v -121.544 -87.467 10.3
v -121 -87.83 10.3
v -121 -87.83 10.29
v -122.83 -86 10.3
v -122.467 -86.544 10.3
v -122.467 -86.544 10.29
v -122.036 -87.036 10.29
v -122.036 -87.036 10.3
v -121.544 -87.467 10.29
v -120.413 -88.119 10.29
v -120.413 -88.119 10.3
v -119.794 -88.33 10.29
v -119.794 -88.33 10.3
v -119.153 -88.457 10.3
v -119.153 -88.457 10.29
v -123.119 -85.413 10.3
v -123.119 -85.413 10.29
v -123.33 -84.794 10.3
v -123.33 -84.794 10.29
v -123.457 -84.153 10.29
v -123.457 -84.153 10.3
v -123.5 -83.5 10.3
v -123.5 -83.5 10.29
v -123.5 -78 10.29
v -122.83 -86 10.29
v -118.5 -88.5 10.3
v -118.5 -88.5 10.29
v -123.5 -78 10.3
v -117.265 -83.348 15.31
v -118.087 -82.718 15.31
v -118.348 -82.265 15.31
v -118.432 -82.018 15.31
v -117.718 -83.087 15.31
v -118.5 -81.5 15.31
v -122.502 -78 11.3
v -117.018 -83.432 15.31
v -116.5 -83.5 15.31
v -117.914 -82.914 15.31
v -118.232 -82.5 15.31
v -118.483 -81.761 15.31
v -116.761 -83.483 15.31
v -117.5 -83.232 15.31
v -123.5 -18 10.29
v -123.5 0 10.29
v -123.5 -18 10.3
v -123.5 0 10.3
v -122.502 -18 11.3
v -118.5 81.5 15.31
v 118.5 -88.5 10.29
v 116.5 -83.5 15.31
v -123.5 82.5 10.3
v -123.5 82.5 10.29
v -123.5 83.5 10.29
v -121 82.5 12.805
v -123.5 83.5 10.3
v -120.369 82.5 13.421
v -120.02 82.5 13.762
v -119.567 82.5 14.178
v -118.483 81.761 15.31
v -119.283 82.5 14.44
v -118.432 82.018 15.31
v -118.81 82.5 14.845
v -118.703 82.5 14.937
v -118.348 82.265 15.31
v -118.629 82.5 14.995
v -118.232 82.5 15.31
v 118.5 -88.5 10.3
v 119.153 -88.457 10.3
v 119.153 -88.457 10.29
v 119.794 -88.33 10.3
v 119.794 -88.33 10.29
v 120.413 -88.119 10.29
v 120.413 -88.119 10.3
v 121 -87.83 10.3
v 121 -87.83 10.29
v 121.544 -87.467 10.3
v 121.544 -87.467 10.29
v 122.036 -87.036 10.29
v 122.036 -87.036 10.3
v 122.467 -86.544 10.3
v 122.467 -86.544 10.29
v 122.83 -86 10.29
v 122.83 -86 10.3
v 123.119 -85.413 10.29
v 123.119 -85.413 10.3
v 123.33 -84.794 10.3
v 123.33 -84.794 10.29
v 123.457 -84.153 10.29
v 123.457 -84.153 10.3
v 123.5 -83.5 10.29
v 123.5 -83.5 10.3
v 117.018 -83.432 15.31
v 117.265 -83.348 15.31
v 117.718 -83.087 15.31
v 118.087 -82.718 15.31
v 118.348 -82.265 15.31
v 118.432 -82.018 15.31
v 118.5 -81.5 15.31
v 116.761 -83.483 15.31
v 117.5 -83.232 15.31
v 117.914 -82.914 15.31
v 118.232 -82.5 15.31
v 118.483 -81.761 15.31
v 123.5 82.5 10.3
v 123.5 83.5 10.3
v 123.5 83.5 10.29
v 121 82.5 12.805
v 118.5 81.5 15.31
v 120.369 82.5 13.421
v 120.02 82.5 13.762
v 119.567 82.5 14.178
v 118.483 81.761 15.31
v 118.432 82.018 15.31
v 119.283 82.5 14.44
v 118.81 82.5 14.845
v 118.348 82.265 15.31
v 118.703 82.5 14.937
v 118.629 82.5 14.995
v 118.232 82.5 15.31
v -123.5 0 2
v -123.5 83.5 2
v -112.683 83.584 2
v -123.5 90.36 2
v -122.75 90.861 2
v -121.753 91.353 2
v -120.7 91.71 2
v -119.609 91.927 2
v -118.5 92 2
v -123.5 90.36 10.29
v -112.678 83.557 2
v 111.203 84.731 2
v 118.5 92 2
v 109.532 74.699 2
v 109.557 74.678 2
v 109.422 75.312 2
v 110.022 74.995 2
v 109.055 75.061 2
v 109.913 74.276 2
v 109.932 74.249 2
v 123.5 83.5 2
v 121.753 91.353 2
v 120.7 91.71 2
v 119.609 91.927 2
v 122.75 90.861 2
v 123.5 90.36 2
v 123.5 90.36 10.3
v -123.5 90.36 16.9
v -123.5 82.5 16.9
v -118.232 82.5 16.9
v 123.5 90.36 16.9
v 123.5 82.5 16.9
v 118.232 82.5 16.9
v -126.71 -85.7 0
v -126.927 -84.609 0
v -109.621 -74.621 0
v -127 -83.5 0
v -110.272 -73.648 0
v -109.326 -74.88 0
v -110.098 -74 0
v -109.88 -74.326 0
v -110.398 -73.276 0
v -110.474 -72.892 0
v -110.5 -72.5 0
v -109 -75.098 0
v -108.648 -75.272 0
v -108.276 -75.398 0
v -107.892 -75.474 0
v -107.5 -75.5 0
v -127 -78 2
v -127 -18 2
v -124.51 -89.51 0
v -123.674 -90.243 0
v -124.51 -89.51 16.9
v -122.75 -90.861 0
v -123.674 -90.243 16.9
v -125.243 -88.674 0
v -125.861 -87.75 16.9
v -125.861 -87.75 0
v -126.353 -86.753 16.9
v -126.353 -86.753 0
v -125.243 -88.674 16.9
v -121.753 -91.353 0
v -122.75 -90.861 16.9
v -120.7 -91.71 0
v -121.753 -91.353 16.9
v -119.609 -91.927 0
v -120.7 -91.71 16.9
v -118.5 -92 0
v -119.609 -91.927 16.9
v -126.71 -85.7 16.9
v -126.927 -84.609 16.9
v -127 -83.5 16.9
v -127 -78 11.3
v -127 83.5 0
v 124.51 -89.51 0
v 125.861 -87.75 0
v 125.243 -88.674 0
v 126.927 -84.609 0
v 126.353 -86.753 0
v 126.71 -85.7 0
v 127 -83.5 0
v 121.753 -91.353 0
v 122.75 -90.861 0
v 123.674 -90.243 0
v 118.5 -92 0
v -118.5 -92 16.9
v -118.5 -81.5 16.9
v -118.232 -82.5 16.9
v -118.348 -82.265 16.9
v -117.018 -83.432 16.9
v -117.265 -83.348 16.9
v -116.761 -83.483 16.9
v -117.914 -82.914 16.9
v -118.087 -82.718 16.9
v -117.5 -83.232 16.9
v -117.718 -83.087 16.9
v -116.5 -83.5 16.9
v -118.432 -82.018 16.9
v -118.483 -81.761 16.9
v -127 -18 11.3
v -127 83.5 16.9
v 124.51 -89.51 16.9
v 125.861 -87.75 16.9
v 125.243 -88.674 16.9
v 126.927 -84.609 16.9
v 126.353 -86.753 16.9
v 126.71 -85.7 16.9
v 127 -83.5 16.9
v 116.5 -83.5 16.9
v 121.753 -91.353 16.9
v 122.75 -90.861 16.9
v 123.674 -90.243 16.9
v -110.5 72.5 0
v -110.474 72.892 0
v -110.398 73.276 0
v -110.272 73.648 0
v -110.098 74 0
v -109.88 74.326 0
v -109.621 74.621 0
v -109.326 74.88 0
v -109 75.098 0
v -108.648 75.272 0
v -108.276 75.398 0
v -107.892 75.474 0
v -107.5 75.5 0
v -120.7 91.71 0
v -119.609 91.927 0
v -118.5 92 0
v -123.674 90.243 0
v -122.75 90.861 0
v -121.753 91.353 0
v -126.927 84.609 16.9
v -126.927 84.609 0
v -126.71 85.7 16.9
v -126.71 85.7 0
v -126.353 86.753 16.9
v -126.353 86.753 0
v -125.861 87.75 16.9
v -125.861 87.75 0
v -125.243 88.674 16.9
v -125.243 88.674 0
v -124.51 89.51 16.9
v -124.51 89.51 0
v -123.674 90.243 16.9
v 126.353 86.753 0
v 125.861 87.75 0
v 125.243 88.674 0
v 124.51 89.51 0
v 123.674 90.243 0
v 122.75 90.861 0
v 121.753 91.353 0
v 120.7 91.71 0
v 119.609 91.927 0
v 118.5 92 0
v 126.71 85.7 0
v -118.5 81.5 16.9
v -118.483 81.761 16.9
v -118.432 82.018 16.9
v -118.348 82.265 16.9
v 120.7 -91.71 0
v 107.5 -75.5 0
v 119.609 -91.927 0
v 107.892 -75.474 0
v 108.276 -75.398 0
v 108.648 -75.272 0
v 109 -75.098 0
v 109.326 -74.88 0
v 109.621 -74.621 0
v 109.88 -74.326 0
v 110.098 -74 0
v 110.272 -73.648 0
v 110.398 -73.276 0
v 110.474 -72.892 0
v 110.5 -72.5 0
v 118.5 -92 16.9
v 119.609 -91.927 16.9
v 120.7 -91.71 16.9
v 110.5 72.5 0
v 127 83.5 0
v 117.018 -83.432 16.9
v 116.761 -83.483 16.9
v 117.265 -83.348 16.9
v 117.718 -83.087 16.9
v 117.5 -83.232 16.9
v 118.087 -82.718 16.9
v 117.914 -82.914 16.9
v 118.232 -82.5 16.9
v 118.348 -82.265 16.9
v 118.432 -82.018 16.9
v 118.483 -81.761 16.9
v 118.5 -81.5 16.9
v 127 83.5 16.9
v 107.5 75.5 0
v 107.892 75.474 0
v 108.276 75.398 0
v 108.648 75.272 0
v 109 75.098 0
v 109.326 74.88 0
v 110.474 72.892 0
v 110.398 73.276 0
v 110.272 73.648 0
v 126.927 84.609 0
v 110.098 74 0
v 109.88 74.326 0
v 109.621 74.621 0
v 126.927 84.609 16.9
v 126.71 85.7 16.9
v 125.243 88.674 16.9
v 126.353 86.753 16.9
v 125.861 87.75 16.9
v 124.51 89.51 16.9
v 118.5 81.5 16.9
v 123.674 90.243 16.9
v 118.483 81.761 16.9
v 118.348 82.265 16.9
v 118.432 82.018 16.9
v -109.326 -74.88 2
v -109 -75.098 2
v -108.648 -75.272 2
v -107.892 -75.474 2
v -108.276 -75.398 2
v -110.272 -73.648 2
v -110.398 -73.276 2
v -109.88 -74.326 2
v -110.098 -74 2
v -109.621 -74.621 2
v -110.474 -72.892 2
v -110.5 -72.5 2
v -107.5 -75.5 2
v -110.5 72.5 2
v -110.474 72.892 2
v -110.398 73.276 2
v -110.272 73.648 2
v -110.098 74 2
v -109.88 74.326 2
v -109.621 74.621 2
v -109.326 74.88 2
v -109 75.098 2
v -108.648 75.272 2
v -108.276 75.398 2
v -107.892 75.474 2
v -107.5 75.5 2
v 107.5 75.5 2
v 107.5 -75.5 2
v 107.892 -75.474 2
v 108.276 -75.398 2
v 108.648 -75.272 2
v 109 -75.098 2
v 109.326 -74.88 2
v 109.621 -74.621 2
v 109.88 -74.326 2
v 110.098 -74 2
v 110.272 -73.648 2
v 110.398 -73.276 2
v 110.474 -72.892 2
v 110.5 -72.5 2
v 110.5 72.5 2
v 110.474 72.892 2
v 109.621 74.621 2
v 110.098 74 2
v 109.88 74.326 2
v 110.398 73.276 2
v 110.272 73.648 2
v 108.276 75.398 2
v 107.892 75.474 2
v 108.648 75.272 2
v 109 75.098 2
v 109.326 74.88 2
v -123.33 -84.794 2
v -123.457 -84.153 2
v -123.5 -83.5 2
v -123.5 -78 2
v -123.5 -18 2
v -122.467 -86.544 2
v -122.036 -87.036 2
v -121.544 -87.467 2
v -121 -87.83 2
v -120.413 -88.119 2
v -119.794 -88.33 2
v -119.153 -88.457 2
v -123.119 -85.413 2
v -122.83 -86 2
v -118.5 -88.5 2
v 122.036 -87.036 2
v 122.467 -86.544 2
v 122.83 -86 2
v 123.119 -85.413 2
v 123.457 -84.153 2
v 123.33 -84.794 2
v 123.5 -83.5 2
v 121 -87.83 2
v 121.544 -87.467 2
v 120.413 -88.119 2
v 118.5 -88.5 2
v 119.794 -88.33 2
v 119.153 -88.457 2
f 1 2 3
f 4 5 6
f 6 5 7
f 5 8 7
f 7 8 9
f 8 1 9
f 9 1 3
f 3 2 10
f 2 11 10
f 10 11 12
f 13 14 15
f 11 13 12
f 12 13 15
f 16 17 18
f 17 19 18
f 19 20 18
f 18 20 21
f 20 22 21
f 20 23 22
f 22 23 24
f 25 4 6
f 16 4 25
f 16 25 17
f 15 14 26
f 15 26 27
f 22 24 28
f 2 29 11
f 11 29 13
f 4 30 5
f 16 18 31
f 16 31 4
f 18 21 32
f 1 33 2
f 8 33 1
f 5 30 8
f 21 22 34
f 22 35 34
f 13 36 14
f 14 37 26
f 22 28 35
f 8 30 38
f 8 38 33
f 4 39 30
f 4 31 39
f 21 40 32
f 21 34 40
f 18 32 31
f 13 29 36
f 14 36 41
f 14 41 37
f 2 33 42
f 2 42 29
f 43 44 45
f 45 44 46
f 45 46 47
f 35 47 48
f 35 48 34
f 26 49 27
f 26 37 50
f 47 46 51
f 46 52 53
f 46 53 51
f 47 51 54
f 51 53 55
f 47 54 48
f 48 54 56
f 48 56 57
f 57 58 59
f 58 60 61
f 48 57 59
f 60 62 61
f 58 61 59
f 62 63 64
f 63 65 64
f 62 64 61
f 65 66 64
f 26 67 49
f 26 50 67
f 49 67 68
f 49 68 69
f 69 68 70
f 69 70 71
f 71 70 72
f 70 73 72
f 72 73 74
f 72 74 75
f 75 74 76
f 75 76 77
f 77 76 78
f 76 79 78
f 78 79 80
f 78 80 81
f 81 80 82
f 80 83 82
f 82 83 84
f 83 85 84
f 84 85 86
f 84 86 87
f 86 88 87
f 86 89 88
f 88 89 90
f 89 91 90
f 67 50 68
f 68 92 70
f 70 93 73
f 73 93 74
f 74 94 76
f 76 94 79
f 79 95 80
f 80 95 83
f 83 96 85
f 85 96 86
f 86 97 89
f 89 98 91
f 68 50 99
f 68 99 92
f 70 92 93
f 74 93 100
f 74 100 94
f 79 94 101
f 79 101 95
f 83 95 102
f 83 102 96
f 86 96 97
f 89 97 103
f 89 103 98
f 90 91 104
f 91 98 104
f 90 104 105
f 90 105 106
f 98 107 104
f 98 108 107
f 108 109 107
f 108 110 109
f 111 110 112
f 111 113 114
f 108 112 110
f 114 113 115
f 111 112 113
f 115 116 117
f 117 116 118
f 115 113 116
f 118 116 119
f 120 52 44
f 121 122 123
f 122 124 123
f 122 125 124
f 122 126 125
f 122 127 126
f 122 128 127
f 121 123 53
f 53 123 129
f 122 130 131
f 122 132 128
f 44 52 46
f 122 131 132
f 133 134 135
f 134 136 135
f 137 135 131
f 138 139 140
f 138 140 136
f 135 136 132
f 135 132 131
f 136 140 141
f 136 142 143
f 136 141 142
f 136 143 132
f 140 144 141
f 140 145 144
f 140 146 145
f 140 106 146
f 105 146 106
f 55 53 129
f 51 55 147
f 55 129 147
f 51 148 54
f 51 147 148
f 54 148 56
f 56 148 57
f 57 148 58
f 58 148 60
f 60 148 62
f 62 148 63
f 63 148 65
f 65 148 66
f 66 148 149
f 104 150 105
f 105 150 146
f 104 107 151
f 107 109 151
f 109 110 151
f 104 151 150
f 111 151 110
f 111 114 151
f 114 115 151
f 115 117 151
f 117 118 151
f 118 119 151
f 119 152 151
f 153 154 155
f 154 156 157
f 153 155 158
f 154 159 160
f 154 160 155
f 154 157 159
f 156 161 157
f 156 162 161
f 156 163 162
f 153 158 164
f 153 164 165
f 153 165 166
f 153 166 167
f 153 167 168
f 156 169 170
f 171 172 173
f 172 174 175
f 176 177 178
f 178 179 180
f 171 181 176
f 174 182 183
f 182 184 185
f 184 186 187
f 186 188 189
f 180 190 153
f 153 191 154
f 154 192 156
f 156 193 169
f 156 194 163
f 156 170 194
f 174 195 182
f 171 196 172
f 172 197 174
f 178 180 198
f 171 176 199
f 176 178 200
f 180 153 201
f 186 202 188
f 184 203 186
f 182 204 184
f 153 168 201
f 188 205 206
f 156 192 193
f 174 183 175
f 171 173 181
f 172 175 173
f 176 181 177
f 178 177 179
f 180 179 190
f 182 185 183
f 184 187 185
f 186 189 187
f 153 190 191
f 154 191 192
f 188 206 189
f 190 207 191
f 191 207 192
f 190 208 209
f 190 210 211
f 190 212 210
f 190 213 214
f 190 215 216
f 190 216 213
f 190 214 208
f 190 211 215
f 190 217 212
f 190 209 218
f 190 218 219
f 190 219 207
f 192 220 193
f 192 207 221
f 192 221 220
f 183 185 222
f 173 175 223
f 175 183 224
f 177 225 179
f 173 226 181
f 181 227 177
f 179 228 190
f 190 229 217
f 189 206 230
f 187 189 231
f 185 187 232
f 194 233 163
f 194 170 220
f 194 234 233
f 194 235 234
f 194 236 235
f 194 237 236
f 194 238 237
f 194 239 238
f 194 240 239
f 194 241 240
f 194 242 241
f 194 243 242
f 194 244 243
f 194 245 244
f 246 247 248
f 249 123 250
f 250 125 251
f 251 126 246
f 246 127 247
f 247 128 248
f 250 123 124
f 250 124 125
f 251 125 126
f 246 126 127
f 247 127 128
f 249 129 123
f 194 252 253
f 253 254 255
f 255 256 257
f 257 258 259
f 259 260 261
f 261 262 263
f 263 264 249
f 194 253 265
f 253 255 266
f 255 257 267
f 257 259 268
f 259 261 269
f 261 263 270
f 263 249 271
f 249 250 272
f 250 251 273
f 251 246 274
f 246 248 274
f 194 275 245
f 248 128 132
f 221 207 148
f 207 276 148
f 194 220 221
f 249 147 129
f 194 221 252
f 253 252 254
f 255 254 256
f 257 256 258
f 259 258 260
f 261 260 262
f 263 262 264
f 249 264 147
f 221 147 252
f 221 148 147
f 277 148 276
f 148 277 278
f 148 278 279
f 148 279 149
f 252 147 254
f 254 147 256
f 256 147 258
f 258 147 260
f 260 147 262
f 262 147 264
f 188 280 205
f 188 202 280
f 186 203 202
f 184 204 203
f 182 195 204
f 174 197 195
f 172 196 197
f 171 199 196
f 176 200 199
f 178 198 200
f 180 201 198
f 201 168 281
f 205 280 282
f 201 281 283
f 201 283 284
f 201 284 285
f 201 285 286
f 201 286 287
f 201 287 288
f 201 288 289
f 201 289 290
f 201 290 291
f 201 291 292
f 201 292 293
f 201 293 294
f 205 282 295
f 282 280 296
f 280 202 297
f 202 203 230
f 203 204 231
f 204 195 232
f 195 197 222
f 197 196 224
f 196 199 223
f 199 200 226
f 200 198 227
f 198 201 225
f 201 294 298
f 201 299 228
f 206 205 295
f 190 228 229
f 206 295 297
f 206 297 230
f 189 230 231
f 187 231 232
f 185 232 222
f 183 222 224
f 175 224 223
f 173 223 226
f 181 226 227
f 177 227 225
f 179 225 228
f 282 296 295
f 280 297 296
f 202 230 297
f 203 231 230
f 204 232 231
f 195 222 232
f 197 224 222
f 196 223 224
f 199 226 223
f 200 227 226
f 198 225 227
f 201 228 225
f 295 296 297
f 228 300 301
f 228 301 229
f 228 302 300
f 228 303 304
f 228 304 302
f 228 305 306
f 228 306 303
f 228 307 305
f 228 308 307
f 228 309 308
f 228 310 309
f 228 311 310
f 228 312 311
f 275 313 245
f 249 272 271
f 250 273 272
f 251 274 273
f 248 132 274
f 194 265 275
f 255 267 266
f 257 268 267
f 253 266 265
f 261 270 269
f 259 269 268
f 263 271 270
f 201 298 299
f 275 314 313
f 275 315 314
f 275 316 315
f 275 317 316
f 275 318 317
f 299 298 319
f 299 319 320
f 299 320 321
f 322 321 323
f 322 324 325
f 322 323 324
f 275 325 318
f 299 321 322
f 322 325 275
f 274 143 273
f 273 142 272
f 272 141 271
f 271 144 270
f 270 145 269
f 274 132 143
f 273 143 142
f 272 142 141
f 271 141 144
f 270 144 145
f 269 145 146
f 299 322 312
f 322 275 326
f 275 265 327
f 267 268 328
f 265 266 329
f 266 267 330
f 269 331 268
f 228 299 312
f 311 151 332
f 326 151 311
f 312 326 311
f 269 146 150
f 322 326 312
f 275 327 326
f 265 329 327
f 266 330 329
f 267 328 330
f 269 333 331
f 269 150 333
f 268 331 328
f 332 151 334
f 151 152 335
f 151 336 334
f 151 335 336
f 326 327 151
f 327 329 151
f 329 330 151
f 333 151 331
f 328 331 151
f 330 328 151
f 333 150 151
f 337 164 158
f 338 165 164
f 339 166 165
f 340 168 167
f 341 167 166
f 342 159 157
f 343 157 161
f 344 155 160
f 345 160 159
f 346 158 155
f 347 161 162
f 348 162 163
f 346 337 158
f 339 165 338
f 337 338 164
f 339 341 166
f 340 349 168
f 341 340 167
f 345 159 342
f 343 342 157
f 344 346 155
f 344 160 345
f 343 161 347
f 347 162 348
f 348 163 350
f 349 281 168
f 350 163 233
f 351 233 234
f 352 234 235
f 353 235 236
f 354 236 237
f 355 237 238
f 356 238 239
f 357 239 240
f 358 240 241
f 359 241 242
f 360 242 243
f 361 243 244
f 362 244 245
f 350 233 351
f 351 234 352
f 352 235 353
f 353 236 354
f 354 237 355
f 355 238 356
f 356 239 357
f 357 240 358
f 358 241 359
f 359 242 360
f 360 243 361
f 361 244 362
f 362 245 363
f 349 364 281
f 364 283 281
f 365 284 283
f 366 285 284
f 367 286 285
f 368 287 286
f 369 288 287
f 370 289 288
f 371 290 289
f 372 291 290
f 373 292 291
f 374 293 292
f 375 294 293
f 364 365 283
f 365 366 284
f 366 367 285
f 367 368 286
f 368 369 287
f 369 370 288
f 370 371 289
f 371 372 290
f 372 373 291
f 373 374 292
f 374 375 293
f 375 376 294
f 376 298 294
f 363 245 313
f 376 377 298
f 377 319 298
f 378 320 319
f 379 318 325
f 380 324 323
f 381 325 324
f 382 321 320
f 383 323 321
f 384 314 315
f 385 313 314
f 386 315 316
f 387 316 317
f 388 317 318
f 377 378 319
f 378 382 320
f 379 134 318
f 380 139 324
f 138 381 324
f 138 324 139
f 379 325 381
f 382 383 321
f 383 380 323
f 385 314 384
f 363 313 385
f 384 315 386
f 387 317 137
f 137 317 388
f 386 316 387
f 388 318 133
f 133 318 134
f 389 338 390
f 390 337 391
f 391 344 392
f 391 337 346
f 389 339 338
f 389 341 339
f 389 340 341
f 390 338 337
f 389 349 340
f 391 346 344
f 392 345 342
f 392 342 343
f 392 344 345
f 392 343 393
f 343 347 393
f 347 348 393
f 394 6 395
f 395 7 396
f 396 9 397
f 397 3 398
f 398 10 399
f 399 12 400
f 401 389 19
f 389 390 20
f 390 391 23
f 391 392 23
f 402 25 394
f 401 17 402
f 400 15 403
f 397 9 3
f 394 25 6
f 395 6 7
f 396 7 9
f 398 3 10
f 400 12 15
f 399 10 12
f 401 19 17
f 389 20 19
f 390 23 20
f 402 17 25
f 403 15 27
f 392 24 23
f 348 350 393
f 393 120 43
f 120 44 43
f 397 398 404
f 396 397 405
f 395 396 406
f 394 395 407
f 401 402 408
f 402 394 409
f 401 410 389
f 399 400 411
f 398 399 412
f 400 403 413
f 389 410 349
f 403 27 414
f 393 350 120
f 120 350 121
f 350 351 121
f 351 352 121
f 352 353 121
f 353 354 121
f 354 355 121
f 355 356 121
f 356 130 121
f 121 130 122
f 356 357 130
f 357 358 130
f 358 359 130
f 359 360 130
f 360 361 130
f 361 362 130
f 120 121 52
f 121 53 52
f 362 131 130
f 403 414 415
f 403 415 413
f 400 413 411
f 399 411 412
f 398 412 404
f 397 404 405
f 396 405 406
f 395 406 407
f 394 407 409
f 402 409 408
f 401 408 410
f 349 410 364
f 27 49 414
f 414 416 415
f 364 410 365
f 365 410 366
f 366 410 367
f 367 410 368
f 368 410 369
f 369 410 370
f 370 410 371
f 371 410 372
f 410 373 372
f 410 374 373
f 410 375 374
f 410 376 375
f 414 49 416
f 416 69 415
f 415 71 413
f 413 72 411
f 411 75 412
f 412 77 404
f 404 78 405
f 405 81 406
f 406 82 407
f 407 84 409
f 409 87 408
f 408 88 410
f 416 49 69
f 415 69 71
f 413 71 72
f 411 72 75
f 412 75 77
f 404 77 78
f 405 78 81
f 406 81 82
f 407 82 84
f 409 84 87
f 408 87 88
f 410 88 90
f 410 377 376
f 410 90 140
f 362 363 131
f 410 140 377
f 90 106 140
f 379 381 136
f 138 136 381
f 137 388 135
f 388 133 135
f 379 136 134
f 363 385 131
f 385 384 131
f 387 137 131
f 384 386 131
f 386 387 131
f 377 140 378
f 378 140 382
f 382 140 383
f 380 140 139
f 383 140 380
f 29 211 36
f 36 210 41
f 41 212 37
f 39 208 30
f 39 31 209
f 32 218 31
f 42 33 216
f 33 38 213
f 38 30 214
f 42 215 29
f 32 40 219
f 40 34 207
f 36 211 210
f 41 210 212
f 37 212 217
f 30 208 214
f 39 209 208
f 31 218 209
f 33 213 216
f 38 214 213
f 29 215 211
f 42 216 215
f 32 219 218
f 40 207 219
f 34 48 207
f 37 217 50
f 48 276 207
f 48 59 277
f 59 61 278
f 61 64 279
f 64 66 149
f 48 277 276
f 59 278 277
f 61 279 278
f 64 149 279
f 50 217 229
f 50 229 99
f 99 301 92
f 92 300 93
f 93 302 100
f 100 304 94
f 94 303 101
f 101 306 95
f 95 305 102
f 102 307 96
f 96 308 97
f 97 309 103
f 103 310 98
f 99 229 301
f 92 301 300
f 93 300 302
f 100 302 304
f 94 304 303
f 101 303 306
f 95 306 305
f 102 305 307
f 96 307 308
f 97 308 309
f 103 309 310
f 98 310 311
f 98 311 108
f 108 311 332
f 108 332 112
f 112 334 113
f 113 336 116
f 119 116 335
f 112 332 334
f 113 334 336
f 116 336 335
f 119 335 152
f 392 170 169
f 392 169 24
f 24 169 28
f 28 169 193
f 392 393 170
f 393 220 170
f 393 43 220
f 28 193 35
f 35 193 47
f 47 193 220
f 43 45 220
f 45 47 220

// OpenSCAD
// Slide-in window frame for the Surface Go (1st gen) shop screen.
//
// The flat front face goes against the inside of the window glass, taped all
// the way round (12 mm VHB, e.g. 3M 5952). The tablet slides in from the open
// top edge, between the front lip and the back lip, and rests on the bottom wall.
// The Surface Connect slot is on the tablet's right edge as seen from outside
// (looking at the screen), near the bottom. Seen from the room that is the left wall.
//
// This file renders the landscape frame (open on a long edge).
// portrait/surface-go-window-frame-portrait.scad renders the portrait one (open on a
// short edge, charger at the bottom). It reuses the modules here, so change
// dimensions in this file only. The -left/-right (and portrait/...-top/-bottom)
// files render the two halves of each frame for a 256 mm bed, and
// surface-go-window-frame-key.scad the butterfly key that locks each closed seam.
//
// Anti-rattle: the pocket has 1 mm of front-back play. Stick a strip of 1 mm
// self-adhesive felt along the back of the tablet's two side edges and bottom
// edge (within 4 mm of the edge, where the back rim overlaps it).
//
// Print front face down on the bed (clean, flat face for the tape). No supports:
// the back rim's underside is a 45 degree chamfer straight off the pocket wall
// (no flat overhang), and there is no rim over the opening. Only the charger
// slot is bridged (60 mm).
// Strength: 4 walls (perimeters), 30% gyroid infill.
// Units mm. Coordinates as seen from the ROOM (the tablet's back) in landscape: x right,
// y up, z from the glass (0) towards the room.
//
// Licence: CC BY-NC 4.0

/* [Tablet - Surface Go 1 is 245 x 175 x 8.3] */
tab_w = 245.0;
tab_h = 175.0;
tab_t = 8.3;
clear = 1.0;           // per side around the tablet edge
play_t = 1.0;          // front-back play; a 1 mm felt strip takes it up
tab_r = 5.0;           // pocket corner radius (keep <= tablet's corner radius)

/* [Frame] */
wall = 3.5;            // side wall thickness (3.5 keeps the frame inside a 256 mm bed)
lip = 2.0;             // front lip thickness (glass side)
lip_over = 13.0;       // front lip covers the bezel this far (screen starts ~17 in)
back_over = 5.0;       // back rim: reach in from the pocket wall (45 degree chamfer)
back_skin = 1.6;       // back rim thickness above the 45 degree slope

/* [Cutouts - tablet edges as in landscape] */
// (room view: the charger edge is the LEFT wall, the buttons are top RIGHT)
cable_y = [-78, -18];  // Surface Connect slot in the left wall (room view), y range
btn_x = [68, 112];     // power + volume on the top edge (room view), x range

/* [Split for printing - two halves, dovetails + glue] */
dt_neck = 6.0;         // dovetail width at the seam
dt_head = 9.0;         // dovetail width at its tip
dt_len = 6.0;          // how far the dovetail reaches into the other half
dt_fit = 0.1;          // total gap between the halves (all round the dovetail)

key_len = 24.0;        // butterfly key length (half in each frame half)
key_head = 5.0;        // key width at its ends
key_neck = 2.5;        // key width at the seam
key_depth = 3.0;       // pocket depth into the back rim
key_fit = 0.1;         // pocket: total oversize over the nominal bow-tie
key_clear = 0.1;       // key: undersize per side (total gap = key_fit + 2 * key_clear)

$fn = 48;

// --- derived ---------------------------------------------------------------
pw = tab_w + 2 * clear;          // pocket 247 x 177
ph = tab_h + 2 * clear;
ow = pw + 2 * wall;              // outer 254 x 184
oh = ph + 2 * wall;
o_r = tab_r + wall;

z_pocket0 = lip;
z_tab = lip + tab_t;             // tablet back (against the front lip); rim chamfer starts here at the wall
z_back = z_tab + play_t;         // felt plane: the chamfer is play_t in from the wall here
z_slope = z_tab + back_over;
z_top = z_slope + back_skin;

win_w = pw - 2 * lip_over;       // 221 x 151 window (screen ~211 x 141)
win_h = ph - 2 * lip_over;

echo(str("outer ", ow, " x ", oh, " x ", z_top, "  window ", win_w, " x ", win_h,
         "  tape strip ", wall + lip_over));

assert(ow <= 255 && oh <= 255, "frame no longer fits a 256 mm bed");

// --- helpers ---------------------------------------------------------------
module rrect(w, h, r) {
    offset(r = r) square([w - 2 * r, h - 2 * r], center = true);
}

module box(x0, x1, y0, y1, z0, z1) {
    translate([x0, y0, z0]) cube([x1 - x0, y1 - y0, z1 - z0]);
}

module slab(inset, z) {
    translate([0, 0, z]) linear_extrude(0.01)
        rrect(pw - 2 * inset, ph - 2 * inset, max(tab_r - inset, 2));
}

// --- frame -----------------------------------------------------------------
// open = "top"  : landscape, tablet slides down onto its long bottom edge
// open = "right": portrait, opening on the edge opposite the charger (room
//                 view right wall); hung so the charger edge is at the bottom
module frame(open = "top") frame_body(open);

module frame_body(open) {
    big = 50;
    difference() {
        linear_extrude(z_top) rrect(ow, oh, o_r);

        // screen window, all the way through
        translate([0, 0, -1]) linear_extrude(z_top + 2) rrect(win_w, win_h, 3);
        // tablet pocket
        translate([0, 0, z_pocket0]) linear_extrude(z_tab - z_pocket0) rrect(pw, ph, tab_r);
        // back opening: 45 degree chamfer straight off the pocket wall, then straight up
        hull() {
            slab(0, z_tab - 0.01);
            slab(back_over, z_slope);
        }
        translate([0, 0, z_slope - 0.01])
            linear_extrude(z_top) rrect(pw - 2 * back_over, ph - 2 * back_over, 2);

        // the opening: wall removed between the lips, and no back rim on that
        // edge (it would be a full-width bridge; the side rims hold the tablet)
        if (open == "top") {
            box(-pw / 2, pw / 2, 0, big + ph / 2, z_pocket0, z_tab);
            box(-pw / 2, pw / 2, ph / 2 - back_over - 1, big + ph / 2, z_tab - 0.01, z_top + 1);
        } else {
            box(0, big + pw / 2, -ph / 2, ph / 2, z_pocket0, z_tab);
            box(pw / 2 - back_over - 1, big + pw / 2, -ph / 2, ph / 2, z_tab - 0.01, z_top + 1);
        }

        // Surface Connect slot (left wall seen from the room = right edge seen from outside)
        box(-ow / 2 - 1, -pw / 2 + 1, cable_y[0], cable_y[1], z_pocket0, z_back);
        // power / volume access (top edge) when the top is closed
        if (open != "top")
            box(btn_x[0], btn_x[1], ph / 2 - 1, oh / 2 + 1, z_pocket0, z_back);
    }
}

// --- split into two halves (seam at x = 0, frame coordinates) --------------
// A 256 mm bed can't really take the 254 mm frame, so each frame also comes as
// two halves. A dovetail on the -x half sits in the middle of the front lip band
// above and below the screen window and locks into the +x half. The lip is the
// face on the bed, so the dovetails print flat; the VHB tape also spans the seam.
dt_y = (win_h / 2 + ph / 2) / 2;   // centre of the lip band
assert(dt_y + dt_head / 2 <= ph / 2 - 1.5, "dovetail too close to the pocket edge");
assert(dt_y - dt_head / 2 >= win_h / 2 + 1.5, "dovetail too close to the screen window");

module minus_x_region() {
    translate([-ow, -oh]) square([ow, 2 * oh]);
    for (s = [1, -1])
        polygon([[-1, s * dt_y - dt_neck / 2], [0, s * dt_y - dt_neck / 2],
                 [dt_len, s * dt_y - dt_head / 2], [dt_len, s * dt_y + dt_head / 2],
                 [0, s * dt_y + dt_neck / 2], [-1, s * dt_y + dt_neck / 2]]);
}

// The -x side of the cut, grown by g. Dovetails only in the front lip (on the
// bed); above it the seam is straight, so nothing hangs over the pocket.
module split_cut(g) {
    translate([0, 0, -1]) linear_extrude(lip + 1) offset(delta = g) minus_x_region();
    translate([-ow, -oh, -1]) cube([ow + g, 2 * oh, z_top + 2]);
}

// Butterfly keys: a bow-tie pocket in the room face of the back rim over each
// closed wall, half in each frame half; a printed key drops in (glued). It
// locks the back of the seam, the lip dovetails lock the front.
key_y = oh / 2 - 1.2 - (key_head + key_fit) / 2;   // key centre, |y|
// rim's inner edge at the key pocket floor (45 degree chamfer from the wall at z_tab)
key_rim_y = ph / 2 - (z_top - key_depth - z_tab);
assert(key_y - (key_head + key_fit) / 2 - key_rim_y >= 0.75, "key pocket breaks into the rim slope");

module bowtie(g) {
    offset(delta = g) polygon([
        [-key_len / 2, -key_head / 2], [0, -key_neck / 2], [key_len / 2, -key_head / 2],
        [key_len / 2, key_head / 2], [0, key_neck / 2], [-key_len / 2, key_head / 2]]);
}

module key_pockets(open) {
    for (s = [-1, 1])
        if (open != "top" || s < 0)   // landscape: the top edge is open, no rim
            translate([0, s * key_y, z_top - key_depth])
                linear_extrude(key_depth + 1) bowtie(key_fit / 2);
}

// slightly undersized all round so it drops in without wedging the halves apart
module key() linear_extrude(key_depth - 0.2) bowtie(-key_clear);

// half = -1 (the -x half, with the dovetails) or 1 (the +x half, with the sockets)
module frame_half(open, half) {
    difference() {
        if (half < 0)
            intersection() {
                frame(open);
                split_cut(-dt_fit / 2);
            }
        else
            difference() {
                frame(open);
                split_cut(dt_fit / 2);
            }
        key_pockets(open);
    }
}

// Shown as it hangs: portrait is turned so the opening is at the top.
module frame_landscape() frame("top");
module frame_portrait() rotate([0, 0, 90]) frame("right");
module frame_landscape_left()   frame_half("top", -1);
module frame_landscape_right()  frame_half("top", 1);
module frame_portrait_bottom()  rotate([0, 0, 90]) frame_half("right", -1);
module frame_portrait_top()     rotate([0, 0, 90]) frame_half("right", 1);

frame_landscape();
